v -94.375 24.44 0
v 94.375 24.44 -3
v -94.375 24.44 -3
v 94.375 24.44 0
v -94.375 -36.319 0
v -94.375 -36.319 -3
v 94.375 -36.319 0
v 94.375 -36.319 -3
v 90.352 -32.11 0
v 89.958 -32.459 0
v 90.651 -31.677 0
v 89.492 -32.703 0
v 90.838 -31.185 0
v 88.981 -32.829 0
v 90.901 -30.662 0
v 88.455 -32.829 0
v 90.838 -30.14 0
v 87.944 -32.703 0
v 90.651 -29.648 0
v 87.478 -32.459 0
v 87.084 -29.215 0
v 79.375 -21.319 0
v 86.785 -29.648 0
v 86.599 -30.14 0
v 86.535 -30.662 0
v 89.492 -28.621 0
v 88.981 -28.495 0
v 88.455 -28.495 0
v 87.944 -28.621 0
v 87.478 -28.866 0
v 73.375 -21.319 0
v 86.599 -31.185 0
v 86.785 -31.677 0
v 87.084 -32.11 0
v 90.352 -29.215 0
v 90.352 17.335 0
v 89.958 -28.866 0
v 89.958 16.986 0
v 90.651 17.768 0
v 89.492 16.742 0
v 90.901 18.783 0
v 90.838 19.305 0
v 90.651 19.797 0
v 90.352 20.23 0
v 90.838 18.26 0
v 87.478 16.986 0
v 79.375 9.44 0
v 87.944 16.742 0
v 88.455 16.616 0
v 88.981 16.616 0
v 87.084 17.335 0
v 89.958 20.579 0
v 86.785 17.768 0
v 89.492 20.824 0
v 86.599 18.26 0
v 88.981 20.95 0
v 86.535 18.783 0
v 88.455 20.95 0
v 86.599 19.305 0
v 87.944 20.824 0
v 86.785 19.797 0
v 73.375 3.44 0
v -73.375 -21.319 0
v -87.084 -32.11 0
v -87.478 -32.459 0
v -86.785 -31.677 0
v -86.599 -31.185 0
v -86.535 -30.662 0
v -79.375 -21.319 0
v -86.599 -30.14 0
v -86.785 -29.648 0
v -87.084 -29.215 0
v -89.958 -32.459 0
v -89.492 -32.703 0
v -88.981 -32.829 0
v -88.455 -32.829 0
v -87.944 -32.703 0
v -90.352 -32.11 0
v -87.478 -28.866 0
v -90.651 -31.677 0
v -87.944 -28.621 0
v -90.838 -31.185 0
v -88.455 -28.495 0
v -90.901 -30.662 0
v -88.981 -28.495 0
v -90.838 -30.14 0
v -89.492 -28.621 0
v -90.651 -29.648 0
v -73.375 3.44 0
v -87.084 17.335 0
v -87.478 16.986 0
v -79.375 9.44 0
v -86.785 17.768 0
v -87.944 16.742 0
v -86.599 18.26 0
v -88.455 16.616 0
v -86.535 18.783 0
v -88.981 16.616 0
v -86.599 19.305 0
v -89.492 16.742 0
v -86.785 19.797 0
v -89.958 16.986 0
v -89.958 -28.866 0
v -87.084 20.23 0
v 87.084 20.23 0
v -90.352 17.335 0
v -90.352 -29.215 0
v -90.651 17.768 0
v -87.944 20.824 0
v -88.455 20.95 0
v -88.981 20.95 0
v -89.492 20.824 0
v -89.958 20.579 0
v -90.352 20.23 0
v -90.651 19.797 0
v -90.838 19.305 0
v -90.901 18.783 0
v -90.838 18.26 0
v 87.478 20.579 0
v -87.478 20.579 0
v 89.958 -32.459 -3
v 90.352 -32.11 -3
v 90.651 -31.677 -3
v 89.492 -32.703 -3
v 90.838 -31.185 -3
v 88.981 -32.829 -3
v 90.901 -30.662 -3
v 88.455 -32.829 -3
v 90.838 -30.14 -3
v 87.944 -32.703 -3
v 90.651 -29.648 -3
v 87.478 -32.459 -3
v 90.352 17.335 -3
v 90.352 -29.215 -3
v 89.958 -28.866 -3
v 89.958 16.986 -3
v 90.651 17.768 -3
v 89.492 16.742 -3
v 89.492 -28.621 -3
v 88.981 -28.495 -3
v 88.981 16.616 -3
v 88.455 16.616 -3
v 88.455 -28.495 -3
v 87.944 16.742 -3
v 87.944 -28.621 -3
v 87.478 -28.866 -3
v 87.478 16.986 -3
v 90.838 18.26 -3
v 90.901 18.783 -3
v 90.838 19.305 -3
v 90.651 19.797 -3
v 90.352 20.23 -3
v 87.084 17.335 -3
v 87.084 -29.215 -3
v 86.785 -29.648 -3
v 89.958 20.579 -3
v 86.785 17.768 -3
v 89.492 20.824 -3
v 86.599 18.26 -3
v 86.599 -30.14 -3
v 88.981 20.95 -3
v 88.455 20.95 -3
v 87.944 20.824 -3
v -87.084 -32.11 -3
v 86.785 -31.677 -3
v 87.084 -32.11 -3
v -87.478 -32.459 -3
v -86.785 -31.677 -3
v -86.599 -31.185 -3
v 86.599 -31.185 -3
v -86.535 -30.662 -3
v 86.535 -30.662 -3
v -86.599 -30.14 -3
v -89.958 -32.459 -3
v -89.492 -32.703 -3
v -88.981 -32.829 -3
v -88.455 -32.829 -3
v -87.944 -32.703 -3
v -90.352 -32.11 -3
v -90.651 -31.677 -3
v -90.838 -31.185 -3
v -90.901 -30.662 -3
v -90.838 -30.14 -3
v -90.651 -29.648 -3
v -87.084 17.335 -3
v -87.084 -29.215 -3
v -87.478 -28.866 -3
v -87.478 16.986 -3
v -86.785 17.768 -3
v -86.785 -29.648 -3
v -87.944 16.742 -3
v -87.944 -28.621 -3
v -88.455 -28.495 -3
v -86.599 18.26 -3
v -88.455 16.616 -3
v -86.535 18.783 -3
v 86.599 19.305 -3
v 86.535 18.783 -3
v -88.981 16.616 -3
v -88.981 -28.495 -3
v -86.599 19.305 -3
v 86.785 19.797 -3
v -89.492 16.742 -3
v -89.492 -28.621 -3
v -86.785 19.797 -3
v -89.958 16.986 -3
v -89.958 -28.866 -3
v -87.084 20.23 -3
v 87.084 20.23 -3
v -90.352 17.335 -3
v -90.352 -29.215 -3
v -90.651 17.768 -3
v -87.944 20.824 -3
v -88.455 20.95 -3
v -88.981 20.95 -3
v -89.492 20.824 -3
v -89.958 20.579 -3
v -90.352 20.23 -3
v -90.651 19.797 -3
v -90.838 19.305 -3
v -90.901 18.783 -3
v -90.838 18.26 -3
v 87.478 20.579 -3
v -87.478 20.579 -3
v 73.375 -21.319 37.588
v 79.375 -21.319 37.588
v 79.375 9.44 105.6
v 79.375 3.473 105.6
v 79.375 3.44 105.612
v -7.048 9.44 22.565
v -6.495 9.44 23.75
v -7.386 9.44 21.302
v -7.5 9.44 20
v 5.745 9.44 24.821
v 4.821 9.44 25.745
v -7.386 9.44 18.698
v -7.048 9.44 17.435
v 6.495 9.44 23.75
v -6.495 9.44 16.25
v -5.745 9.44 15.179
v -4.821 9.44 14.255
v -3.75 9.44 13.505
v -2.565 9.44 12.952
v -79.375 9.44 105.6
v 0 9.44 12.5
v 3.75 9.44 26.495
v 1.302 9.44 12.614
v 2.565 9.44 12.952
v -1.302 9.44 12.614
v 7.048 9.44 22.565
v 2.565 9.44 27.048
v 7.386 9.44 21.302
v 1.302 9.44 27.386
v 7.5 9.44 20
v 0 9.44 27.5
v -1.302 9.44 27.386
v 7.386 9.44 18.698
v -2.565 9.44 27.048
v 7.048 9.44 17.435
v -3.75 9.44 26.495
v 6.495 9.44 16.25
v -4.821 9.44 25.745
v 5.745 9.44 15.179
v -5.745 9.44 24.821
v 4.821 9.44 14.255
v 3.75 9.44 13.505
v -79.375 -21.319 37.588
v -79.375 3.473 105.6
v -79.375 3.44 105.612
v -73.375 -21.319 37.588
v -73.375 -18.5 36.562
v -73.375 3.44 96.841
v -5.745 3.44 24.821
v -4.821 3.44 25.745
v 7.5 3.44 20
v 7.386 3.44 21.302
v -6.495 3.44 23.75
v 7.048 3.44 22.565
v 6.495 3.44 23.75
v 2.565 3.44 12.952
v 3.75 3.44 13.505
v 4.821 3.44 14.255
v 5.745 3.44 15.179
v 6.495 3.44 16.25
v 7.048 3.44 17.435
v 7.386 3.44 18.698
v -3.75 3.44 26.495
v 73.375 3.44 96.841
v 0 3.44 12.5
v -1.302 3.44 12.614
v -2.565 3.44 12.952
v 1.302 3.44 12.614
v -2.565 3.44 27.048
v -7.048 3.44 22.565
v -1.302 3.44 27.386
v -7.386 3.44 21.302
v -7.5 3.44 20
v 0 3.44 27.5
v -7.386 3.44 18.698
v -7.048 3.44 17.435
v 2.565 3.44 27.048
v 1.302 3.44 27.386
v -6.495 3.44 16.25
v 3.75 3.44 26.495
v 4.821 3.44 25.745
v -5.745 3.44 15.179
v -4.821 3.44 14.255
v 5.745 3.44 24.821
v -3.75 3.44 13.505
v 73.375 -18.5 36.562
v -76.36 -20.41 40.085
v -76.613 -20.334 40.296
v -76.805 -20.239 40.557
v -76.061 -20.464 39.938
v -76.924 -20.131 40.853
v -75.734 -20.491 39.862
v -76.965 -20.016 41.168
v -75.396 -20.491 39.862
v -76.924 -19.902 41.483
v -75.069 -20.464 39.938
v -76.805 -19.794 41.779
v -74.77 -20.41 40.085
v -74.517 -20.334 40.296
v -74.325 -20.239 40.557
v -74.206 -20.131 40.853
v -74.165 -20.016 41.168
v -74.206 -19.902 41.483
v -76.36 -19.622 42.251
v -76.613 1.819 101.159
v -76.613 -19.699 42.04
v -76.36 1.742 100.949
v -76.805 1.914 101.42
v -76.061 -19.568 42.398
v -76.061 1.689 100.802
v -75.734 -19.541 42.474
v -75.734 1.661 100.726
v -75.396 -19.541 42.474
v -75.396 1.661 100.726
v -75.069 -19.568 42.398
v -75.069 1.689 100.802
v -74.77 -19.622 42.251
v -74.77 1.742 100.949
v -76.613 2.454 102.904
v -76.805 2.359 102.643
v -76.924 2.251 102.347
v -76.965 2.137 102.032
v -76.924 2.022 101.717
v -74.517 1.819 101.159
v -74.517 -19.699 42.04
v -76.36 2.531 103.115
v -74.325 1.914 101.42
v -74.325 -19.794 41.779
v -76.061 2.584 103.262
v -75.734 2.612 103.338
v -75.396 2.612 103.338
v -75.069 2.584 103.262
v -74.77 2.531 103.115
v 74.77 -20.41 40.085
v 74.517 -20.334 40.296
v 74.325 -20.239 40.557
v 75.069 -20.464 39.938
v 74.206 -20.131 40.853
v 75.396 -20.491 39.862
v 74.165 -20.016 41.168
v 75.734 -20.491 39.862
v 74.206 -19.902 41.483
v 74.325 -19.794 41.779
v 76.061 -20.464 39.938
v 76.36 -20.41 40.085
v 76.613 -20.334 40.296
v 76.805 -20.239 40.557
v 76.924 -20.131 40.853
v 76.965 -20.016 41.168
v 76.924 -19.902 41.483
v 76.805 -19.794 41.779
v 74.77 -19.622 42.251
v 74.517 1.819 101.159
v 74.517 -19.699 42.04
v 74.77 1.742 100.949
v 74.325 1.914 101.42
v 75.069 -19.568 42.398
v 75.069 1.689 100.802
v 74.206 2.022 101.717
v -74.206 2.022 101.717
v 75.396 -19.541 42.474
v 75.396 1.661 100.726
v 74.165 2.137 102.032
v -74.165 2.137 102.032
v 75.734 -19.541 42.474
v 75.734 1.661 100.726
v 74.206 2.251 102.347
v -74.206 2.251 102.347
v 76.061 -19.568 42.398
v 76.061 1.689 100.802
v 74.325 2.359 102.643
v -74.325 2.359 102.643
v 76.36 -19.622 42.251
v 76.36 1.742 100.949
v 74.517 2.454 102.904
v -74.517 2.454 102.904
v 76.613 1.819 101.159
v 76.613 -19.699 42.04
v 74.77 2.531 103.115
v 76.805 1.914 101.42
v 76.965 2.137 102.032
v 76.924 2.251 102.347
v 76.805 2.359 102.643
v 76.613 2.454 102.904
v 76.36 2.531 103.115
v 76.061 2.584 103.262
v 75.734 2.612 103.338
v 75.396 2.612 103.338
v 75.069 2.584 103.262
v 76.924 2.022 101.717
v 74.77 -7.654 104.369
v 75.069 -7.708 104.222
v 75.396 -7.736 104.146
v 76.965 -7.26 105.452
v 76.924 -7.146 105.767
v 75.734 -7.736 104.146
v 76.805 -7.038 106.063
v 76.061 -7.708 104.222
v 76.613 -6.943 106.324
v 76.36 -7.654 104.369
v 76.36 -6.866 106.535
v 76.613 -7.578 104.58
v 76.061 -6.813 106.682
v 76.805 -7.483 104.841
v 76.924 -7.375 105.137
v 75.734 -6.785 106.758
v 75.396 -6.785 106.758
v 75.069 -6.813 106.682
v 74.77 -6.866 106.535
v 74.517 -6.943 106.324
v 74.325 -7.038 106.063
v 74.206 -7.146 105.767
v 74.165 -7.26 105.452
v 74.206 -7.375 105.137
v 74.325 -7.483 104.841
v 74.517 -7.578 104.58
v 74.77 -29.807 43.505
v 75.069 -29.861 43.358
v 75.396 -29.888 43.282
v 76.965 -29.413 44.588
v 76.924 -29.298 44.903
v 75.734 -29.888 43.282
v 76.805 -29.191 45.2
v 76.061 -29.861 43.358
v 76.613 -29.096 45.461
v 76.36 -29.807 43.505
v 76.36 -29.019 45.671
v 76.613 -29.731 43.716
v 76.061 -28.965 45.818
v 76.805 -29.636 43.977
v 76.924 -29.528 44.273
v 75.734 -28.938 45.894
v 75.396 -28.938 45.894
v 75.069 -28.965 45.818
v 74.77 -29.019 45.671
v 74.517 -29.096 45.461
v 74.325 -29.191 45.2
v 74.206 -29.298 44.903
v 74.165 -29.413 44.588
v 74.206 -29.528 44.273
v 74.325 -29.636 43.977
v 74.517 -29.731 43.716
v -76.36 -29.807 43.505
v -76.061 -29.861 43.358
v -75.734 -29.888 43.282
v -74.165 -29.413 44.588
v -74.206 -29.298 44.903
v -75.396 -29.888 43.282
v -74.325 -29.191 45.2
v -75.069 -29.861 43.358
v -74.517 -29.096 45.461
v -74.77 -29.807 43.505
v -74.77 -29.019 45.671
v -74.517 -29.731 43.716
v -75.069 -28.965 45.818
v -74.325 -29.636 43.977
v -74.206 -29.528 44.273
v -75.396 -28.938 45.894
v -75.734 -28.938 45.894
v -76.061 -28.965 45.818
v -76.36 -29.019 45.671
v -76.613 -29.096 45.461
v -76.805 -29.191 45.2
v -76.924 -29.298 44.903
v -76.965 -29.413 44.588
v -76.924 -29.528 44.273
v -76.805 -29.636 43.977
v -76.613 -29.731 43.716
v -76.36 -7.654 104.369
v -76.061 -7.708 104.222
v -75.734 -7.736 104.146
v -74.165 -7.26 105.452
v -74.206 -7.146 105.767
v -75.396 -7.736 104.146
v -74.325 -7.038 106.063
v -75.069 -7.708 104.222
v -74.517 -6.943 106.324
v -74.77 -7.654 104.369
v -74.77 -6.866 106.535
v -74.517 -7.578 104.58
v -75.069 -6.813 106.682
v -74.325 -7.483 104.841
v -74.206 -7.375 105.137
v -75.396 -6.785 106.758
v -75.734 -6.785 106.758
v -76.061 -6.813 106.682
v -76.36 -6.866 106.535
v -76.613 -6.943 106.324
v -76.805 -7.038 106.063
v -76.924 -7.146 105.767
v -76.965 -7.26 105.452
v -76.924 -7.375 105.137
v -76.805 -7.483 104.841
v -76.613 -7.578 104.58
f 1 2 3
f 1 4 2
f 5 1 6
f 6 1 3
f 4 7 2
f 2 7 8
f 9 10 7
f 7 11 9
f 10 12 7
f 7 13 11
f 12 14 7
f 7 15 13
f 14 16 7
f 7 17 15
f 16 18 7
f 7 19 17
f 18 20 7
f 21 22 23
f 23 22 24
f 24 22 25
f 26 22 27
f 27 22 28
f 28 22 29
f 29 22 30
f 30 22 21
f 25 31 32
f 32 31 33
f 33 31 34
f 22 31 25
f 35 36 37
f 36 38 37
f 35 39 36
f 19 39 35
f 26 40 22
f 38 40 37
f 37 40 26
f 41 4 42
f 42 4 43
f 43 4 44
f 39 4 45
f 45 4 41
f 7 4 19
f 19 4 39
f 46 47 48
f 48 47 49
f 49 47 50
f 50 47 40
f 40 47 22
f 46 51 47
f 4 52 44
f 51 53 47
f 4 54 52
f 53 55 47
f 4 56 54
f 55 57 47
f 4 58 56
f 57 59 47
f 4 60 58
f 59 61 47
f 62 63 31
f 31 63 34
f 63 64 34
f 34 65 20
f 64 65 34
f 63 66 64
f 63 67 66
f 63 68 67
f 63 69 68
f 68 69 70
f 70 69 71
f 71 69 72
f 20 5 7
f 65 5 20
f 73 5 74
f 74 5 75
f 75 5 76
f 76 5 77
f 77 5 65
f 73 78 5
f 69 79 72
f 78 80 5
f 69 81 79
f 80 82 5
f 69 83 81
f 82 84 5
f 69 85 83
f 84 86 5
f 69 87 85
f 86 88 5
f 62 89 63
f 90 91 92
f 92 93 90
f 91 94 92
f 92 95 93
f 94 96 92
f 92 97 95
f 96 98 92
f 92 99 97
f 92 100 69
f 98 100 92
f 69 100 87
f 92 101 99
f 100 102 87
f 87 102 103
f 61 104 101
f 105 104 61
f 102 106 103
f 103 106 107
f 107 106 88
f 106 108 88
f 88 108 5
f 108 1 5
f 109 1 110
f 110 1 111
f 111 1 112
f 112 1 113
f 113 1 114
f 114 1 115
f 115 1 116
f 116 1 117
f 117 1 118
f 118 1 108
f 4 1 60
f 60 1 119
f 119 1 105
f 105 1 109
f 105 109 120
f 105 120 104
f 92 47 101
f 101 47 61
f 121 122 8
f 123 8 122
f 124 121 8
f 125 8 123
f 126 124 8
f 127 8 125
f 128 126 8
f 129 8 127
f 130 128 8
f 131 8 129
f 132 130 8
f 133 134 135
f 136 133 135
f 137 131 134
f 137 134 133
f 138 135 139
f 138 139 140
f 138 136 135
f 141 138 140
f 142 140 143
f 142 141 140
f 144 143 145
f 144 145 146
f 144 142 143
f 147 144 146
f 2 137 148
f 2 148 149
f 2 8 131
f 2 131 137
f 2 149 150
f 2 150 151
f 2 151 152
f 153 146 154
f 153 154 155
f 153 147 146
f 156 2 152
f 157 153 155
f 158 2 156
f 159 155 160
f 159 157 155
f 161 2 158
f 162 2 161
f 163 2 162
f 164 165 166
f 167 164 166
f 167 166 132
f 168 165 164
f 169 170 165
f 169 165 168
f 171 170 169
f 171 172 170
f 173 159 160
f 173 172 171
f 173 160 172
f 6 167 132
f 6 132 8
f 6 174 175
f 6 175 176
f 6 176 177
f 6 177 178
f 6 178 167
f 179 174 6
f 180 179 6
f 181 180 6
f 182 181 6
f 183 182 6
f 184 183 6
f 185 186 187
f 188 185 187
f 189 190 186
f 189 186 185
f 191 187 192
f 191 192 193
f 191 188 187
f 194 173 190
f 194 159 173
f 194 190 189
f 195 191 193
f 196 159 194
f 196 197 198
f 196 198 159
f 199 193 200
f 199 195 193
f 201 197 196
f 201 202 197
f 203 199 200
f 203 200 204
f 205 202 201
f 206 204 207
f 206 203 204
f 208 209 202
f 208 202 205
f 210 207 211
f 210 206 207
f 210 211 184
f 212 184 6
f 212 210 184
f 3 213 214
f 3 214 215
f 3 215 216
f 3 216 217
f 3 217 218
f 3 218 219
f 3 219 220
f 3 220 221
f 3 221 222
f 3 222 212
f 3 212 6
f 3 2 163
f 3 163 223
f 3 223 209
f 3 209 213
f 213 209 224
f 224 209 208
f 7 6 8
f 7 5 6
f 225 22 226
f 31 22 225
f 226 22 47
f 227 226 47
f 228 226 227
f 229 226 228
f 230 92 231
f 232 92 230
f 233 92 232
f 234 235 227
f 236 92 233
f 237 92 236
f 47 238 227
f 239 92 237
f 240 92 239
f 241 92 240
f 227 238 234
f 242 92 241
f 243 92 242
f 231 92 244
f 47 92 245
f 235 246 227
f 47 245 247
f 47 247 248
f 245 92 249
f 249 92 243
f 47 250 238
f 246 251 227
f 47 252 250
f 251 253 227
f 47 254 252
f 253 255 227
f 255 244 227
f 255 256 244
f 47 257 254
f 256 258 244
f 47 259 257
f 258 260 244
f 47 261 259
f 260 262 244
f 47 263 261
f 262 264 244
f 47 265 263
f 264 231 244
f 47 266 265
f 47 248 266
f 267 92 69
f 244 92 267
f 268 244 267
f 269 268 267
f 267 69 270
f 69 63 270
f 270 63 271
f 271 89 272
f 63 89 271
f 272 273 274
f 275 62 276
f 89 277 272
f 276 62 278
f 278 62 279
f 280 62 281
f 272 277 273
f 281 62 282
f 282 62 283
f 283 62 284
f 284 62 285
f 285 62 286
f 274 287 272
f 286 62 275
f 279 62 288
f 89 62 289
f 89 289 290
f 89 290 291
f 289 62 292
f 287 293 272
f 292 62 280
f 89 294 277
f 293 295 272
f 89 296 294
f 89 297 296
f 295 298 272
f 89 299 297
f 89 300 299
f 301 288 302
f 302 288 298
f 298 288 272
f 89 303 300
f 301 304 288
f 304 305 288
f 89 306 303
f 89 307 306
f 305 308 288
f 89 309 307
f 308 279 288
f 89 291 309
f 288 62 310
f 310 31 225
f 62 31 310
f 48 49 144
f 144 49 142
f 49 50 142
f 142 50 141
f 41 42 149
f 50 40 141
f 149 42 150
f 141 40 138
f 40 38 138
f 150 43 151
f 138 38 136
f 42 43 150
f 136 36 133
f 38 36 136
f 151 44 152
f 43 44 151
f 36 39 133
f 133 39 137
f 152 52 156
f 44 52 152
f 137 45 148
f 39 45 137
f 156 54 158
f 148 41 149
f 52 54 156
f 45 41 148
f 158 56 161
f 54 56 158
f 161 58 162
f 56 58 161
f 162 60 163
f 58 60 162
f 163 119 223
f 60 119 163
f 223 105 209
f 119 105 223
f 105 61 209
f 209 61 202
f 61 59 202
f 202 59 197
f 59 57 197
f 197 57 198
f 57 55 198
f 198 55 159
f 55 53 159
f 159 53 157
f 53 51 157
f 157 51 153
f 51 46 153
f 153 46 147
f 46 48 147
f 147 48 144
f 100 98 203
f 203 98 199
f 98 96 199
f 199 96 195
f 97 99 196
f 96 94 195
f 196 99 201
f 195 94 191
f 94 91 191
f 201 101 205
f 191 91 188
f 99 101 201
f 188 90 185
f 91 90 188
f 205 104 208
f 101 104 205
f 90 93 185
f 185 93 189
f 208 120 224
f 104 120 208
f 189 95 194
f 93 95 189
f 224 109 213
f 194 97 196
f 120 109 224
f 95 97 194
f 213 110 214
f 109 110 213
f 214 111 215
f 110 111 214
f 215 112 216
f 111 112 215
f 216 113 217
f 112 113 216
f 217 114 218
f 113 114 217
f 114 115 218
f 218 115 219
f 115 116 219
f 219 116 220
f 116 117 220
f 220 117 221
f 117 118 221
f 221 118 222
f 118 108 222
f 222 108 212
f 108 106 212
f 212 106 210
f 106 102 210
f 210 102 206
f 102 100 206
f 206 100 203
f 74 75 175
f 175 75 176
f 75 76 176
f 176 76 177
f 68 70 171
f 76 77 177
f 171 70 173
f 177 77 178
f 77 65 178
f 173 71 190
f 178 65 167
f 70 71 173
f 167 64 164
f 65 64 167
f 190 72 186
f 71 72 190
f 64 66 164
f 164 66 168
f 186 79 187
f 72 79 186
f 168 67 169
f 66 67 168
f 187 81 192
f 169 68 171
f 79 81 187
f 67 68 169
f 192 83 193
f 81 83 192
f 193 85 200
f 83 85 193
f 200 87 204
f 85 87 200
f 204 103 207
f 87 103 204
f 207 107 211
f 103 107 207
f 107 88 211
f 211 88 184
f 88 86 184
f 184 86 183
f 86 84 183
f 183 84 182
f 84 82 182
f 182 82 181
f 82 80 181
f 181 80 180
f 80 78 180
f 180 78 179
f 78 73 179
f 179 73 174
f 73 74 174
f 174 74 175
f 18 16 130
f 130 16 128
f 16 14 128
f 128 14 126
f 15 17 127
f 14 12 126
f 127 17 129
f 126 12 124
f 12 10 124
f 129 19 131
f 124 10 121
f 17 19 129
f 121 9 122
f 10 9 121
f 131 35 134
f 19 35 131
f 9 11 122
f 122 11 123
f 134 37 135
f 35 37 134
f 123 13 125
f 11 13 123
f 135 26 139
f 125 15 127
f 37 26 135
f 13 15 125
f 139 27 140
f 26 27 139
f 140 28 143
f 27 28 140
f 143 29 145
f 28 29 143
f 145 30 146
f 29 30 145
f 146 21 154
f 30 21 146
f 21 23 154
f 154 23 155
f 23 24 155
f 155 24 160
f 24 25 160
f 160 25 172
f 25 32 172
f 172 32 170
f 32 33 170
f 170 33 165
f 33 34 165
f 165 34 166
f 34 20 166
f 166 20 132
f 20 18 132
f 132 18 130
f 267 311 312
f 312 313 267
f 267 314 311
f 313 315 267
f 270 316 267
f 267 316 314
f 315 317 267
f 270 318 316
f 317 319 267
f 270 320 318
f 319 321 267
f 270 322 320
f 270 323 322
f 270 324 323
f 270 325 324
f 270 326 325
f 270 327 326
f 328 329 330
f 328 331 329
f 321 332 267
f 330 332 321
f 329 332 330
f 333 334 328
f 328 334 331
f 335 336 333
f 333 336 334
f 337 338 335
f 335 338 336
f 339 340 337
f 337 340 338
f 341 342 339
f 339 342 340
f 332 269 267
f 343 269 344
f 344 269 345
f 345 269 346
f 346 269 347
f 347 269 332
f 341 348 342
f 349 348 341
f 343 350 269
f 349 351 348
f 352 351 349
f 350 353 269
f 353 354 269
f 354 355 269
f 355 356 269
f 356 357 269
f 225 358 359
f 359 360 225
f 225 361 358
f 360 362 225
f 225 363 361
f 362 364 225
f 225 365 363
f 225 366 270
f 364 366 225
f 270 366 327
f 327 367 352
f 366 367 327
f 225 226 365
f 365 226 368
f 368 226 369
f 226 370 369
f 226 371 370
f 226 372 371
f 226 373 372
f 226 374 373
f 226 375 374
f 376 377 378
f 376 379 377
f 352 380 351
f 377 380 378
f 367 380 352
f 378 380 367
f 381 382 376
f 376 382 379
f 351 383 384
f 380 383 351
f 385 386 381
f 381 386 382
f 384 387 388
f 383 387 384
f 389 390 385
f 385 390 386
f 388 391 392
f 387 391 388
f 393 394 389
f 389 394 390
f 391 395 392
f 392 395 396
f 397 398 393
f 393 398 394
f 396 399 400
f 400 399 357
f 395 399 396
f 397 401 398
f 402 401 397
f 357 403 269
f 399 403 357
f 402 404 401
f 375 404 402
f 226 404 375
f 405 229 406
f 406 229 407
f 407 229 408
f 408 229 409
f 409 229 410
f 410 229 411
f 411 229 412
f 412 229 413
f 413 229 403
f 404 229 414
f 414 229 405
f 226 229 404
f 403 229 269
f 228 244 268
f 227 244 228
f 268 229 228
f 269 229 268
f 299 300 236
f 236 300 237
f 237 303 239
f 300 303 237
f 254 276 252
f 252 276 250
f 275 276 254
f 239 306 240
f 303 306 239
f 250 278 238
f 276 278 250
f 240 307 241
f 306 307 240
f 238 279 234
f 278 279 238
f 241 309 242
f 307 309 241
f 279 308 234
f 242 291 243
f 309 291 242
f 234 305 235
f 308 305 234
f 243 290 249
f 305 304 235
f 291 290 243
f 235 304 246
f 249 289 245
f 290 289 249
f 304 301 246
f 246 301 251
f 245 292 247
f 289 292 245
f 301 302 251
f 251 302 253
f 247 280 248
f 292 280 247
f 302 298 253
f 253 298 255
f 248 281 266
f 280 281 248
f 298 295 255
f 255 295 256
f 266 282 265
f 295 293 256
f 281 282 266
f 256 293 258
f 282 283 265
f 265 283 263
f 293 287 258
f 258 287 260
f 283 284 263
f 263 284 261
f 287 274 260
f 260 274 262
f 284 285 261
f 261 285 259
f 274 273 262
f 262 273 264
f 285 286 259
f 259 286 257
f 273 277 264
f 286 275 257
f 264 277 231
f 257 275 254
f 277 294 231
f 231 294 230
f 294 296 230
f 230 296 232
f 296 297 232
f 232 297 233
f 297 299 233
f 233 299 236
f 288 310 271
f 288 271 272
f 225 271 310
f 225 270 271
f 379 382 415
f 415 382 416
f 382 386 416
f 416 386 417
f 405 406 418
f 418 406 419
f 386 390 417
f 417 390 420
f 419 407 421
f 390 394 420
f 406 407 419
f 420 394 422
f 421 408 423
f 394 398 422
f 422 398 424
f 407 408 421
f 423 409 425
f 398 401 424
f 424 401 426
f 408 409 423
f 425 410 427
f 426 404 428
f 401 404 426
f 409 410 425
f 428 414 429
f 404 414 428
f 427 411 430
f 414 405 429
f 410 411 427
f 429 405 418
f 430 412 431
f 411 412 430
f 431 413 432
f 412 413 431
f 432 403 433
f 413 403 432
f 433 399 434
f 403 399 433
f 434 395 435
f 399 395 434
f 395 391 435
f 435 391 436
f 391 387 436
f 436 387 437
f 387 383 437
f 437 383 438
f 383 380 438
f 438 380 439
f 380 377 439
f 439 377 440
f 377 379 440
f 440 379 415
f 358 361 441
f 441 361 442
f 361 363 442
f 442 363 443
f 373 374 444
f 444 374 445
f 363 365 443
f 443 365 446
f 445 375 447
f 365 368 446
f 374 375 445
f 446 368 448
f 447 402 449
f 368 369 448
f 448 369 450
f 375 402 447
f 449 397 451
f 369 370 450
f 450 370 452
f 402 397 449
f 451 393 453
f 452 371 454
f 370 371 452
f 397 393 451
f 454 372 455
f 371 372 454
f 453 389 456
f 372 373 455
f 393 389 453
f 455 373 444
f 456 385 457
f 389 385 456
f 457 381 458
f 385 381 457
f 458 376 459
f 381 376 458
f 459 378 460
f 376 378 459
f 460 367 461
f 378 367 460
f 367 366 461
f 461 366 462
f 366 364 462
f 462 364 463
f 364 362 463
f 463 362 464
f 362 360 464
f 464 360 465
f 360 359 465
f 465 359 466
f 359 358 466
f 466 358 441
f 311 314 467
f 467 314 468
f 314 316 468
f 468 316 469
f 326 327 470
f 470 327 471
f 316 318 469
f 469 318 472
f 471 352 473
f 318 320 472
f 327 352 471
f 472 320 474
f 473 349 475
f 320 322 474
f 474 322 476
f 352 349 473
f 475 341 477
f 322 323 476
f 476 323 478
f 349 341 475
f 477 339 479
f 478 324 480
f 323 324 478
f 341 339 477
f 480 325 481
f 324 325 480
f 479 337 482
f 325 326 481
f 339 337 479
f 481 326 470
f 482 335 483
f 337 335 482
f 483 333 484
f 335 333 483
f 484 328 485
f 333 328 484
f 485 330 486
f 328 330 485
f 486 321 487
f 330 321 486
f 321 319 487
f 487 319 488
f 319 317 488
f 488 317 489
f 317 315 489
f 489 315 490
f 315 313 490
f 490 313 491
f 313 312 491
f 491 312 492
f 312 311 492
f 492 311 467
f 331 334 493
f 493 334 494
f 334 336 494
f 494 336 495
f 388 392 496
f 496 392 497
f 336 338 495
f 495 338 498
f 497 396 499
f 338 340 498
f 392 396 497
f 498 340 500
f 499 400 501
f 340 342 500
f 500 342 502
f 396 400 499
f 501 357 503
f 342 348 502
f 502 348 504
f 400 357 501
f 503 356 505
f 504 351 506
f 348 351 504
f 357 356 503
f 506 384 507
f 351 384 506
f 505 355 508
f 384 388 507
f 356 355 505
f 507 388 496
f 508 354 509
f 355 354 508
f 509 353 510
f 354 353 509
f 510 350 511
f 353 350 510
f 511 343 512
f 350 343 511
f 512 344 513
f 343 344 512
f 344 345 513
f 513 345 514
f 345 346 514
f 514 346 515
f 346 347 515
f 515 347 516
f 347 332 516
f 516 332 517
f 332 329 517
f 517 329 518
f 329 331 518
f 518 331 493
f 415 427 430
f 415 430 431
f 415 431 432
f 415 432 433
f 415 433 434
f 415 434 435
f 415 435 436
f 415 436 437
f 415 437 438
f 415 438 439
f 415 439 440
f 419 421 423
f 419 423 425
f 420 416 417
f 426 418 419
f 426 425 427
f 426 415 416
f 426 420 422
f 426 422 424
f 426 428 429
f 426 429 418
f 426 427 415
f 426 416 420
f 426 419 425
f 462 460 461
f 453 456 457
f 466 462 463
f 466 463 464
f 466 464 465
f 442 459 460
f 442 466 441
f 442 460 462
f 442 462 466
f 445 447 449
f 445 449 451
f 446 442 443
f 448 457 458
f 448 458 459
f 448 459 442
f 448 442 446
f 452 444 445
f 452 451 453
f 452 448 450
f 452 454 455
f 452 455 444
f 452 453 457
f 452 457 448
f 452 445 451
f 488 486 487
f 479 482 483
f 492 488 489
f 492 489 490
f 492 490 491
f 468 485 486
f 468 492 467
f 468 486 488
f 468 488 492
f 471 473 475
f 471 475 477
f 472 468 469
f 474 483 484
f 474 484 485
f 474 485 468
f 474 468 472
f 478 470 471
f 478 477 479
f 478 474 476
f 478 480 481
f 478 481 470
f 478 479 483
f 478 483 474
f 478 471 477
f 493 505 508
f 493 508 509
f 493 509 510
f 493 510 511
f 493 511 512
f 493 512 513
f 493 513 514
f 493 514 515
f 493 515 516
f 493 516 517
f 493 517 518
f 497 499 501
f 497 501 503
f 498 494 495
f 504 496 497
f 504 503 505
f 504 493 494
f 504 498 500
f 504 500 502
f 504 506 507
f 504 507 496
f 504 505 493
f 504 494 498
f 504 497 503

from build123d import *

# Parameters (mm, degrees)
SKETCH001_W     = 188.75
SKETCH001_H     = 60.758838
SKETCH001_R     = 2.182812
PAD_DEPTH       = 3
PAD001_DEPTH    = 105.6
SKETCH004_W     = 328.820023
SKETCH004_H     = 275.658927
POCKET_DEPTH    = 200
SKETCH002_W     = 158.75
SKETCH002_H     = 72.39
PAD002_DEPTH    = 3
SKETCH003_R     = 1.4
PAD003_DEPTH    = 10
SKETCH005_R     = 7.5
POCKET001_DEPTH = 24.440644


with BuildPart() as part:
    # Sketch001 → Pad (new body)
    with BuildSketch(Plane.XY):
        with Locations((0, -5.939775)):
            Rectangle(SKETCH001_W, SKETCH001_H)
        with Locations((88.718146, 18.78279)):
            Circle(SKETCH001_R, mode=Mode.SUBTRACT)
        with Locations((88.718146, -30.66234)):
            Circle(SKETCH001_R, mode=Mode.SUBTRACT)
        with Locations((-88.718146, -30.66234)):
            Circle(SKETCH001_R, mode=Mode.SUBTRACT)
        with Locations((-88.718146, 18.78279)):
            Circle(SKETCH001_R, mode=Mode.SUBTRACT)
    extrude(amount=-PAD_DEPTH)

    # Sketch → Pad001 (join)
    with BuildSketch(Plane.XY):
        Polygon((73.375, -21.319194), (79.375, -21.319194), (79.375, 9.439644), (-79.375, 9.439644), (-79.375, -21.319194), (-73.375, -21.319194), (-73.375, 3.439644), (73.375, 3.439644), align=None)
    extrude(amount=PAD001_DEPTH)

    # Sketch004 (on DatumPlane) → Pocket (cut)
    with BuildSketch(Plane(origin=(0, -35, 0), x_dir=(1, 0, 0), z_dir=(0, -0.939693, 0.34202))):
        with Locations((-2.626228, 137.829464)):
            Rectangle(SKETCH004_W, SKETCH004_H)
    extrude(amount=POCKET_DEPTH, mode=Mode.SUBTRACT)

    # Sketch002 (on DatumPlane) → Pad002 (join)
    with BuildSketch(Plane(origin=(0, -35, 0), x_dir=(1, 0, 0), z_dir=(0, -0.939693, 0.34202))):
        with Locations((0, 76.195)):
            Rectangle(SKETCH002_W, SKETCH002_H)
    extrude(amount=-PAD002_DEPTH)

    # Sketch003 (on DatumPlane) → Pad003 (join)
    with BuildSketch(Plane(origin=(0, -35, 0), x_dir=(1, 0, 0), z_dir=(0, -0.939693, 0.34202))):
        with Locations((-75.565, 108.58)):
            Circle(SKETCH003_R)
        with Locations((75.565, 108.58)):
            Circle(SKETCH003_R)
        with Locations((75.565, 43.81)):
            Circle(SKETCH003_R)
        with Locations((-75.565, 43.81)):
            Circle(SKETCH003_R)
    extrude(amount=PAD003_DEPTH)

    # Sketch005 → Pocket001 (cut, through all)
    with BuildSketch(Plane.XZ):
        with Locations((0, 20)):
            Circle(SKETCH005_R)
    extrude(amount=-POCKET001_DEPTH, mode=Mode.SUBTRACT)


solid = part.part
